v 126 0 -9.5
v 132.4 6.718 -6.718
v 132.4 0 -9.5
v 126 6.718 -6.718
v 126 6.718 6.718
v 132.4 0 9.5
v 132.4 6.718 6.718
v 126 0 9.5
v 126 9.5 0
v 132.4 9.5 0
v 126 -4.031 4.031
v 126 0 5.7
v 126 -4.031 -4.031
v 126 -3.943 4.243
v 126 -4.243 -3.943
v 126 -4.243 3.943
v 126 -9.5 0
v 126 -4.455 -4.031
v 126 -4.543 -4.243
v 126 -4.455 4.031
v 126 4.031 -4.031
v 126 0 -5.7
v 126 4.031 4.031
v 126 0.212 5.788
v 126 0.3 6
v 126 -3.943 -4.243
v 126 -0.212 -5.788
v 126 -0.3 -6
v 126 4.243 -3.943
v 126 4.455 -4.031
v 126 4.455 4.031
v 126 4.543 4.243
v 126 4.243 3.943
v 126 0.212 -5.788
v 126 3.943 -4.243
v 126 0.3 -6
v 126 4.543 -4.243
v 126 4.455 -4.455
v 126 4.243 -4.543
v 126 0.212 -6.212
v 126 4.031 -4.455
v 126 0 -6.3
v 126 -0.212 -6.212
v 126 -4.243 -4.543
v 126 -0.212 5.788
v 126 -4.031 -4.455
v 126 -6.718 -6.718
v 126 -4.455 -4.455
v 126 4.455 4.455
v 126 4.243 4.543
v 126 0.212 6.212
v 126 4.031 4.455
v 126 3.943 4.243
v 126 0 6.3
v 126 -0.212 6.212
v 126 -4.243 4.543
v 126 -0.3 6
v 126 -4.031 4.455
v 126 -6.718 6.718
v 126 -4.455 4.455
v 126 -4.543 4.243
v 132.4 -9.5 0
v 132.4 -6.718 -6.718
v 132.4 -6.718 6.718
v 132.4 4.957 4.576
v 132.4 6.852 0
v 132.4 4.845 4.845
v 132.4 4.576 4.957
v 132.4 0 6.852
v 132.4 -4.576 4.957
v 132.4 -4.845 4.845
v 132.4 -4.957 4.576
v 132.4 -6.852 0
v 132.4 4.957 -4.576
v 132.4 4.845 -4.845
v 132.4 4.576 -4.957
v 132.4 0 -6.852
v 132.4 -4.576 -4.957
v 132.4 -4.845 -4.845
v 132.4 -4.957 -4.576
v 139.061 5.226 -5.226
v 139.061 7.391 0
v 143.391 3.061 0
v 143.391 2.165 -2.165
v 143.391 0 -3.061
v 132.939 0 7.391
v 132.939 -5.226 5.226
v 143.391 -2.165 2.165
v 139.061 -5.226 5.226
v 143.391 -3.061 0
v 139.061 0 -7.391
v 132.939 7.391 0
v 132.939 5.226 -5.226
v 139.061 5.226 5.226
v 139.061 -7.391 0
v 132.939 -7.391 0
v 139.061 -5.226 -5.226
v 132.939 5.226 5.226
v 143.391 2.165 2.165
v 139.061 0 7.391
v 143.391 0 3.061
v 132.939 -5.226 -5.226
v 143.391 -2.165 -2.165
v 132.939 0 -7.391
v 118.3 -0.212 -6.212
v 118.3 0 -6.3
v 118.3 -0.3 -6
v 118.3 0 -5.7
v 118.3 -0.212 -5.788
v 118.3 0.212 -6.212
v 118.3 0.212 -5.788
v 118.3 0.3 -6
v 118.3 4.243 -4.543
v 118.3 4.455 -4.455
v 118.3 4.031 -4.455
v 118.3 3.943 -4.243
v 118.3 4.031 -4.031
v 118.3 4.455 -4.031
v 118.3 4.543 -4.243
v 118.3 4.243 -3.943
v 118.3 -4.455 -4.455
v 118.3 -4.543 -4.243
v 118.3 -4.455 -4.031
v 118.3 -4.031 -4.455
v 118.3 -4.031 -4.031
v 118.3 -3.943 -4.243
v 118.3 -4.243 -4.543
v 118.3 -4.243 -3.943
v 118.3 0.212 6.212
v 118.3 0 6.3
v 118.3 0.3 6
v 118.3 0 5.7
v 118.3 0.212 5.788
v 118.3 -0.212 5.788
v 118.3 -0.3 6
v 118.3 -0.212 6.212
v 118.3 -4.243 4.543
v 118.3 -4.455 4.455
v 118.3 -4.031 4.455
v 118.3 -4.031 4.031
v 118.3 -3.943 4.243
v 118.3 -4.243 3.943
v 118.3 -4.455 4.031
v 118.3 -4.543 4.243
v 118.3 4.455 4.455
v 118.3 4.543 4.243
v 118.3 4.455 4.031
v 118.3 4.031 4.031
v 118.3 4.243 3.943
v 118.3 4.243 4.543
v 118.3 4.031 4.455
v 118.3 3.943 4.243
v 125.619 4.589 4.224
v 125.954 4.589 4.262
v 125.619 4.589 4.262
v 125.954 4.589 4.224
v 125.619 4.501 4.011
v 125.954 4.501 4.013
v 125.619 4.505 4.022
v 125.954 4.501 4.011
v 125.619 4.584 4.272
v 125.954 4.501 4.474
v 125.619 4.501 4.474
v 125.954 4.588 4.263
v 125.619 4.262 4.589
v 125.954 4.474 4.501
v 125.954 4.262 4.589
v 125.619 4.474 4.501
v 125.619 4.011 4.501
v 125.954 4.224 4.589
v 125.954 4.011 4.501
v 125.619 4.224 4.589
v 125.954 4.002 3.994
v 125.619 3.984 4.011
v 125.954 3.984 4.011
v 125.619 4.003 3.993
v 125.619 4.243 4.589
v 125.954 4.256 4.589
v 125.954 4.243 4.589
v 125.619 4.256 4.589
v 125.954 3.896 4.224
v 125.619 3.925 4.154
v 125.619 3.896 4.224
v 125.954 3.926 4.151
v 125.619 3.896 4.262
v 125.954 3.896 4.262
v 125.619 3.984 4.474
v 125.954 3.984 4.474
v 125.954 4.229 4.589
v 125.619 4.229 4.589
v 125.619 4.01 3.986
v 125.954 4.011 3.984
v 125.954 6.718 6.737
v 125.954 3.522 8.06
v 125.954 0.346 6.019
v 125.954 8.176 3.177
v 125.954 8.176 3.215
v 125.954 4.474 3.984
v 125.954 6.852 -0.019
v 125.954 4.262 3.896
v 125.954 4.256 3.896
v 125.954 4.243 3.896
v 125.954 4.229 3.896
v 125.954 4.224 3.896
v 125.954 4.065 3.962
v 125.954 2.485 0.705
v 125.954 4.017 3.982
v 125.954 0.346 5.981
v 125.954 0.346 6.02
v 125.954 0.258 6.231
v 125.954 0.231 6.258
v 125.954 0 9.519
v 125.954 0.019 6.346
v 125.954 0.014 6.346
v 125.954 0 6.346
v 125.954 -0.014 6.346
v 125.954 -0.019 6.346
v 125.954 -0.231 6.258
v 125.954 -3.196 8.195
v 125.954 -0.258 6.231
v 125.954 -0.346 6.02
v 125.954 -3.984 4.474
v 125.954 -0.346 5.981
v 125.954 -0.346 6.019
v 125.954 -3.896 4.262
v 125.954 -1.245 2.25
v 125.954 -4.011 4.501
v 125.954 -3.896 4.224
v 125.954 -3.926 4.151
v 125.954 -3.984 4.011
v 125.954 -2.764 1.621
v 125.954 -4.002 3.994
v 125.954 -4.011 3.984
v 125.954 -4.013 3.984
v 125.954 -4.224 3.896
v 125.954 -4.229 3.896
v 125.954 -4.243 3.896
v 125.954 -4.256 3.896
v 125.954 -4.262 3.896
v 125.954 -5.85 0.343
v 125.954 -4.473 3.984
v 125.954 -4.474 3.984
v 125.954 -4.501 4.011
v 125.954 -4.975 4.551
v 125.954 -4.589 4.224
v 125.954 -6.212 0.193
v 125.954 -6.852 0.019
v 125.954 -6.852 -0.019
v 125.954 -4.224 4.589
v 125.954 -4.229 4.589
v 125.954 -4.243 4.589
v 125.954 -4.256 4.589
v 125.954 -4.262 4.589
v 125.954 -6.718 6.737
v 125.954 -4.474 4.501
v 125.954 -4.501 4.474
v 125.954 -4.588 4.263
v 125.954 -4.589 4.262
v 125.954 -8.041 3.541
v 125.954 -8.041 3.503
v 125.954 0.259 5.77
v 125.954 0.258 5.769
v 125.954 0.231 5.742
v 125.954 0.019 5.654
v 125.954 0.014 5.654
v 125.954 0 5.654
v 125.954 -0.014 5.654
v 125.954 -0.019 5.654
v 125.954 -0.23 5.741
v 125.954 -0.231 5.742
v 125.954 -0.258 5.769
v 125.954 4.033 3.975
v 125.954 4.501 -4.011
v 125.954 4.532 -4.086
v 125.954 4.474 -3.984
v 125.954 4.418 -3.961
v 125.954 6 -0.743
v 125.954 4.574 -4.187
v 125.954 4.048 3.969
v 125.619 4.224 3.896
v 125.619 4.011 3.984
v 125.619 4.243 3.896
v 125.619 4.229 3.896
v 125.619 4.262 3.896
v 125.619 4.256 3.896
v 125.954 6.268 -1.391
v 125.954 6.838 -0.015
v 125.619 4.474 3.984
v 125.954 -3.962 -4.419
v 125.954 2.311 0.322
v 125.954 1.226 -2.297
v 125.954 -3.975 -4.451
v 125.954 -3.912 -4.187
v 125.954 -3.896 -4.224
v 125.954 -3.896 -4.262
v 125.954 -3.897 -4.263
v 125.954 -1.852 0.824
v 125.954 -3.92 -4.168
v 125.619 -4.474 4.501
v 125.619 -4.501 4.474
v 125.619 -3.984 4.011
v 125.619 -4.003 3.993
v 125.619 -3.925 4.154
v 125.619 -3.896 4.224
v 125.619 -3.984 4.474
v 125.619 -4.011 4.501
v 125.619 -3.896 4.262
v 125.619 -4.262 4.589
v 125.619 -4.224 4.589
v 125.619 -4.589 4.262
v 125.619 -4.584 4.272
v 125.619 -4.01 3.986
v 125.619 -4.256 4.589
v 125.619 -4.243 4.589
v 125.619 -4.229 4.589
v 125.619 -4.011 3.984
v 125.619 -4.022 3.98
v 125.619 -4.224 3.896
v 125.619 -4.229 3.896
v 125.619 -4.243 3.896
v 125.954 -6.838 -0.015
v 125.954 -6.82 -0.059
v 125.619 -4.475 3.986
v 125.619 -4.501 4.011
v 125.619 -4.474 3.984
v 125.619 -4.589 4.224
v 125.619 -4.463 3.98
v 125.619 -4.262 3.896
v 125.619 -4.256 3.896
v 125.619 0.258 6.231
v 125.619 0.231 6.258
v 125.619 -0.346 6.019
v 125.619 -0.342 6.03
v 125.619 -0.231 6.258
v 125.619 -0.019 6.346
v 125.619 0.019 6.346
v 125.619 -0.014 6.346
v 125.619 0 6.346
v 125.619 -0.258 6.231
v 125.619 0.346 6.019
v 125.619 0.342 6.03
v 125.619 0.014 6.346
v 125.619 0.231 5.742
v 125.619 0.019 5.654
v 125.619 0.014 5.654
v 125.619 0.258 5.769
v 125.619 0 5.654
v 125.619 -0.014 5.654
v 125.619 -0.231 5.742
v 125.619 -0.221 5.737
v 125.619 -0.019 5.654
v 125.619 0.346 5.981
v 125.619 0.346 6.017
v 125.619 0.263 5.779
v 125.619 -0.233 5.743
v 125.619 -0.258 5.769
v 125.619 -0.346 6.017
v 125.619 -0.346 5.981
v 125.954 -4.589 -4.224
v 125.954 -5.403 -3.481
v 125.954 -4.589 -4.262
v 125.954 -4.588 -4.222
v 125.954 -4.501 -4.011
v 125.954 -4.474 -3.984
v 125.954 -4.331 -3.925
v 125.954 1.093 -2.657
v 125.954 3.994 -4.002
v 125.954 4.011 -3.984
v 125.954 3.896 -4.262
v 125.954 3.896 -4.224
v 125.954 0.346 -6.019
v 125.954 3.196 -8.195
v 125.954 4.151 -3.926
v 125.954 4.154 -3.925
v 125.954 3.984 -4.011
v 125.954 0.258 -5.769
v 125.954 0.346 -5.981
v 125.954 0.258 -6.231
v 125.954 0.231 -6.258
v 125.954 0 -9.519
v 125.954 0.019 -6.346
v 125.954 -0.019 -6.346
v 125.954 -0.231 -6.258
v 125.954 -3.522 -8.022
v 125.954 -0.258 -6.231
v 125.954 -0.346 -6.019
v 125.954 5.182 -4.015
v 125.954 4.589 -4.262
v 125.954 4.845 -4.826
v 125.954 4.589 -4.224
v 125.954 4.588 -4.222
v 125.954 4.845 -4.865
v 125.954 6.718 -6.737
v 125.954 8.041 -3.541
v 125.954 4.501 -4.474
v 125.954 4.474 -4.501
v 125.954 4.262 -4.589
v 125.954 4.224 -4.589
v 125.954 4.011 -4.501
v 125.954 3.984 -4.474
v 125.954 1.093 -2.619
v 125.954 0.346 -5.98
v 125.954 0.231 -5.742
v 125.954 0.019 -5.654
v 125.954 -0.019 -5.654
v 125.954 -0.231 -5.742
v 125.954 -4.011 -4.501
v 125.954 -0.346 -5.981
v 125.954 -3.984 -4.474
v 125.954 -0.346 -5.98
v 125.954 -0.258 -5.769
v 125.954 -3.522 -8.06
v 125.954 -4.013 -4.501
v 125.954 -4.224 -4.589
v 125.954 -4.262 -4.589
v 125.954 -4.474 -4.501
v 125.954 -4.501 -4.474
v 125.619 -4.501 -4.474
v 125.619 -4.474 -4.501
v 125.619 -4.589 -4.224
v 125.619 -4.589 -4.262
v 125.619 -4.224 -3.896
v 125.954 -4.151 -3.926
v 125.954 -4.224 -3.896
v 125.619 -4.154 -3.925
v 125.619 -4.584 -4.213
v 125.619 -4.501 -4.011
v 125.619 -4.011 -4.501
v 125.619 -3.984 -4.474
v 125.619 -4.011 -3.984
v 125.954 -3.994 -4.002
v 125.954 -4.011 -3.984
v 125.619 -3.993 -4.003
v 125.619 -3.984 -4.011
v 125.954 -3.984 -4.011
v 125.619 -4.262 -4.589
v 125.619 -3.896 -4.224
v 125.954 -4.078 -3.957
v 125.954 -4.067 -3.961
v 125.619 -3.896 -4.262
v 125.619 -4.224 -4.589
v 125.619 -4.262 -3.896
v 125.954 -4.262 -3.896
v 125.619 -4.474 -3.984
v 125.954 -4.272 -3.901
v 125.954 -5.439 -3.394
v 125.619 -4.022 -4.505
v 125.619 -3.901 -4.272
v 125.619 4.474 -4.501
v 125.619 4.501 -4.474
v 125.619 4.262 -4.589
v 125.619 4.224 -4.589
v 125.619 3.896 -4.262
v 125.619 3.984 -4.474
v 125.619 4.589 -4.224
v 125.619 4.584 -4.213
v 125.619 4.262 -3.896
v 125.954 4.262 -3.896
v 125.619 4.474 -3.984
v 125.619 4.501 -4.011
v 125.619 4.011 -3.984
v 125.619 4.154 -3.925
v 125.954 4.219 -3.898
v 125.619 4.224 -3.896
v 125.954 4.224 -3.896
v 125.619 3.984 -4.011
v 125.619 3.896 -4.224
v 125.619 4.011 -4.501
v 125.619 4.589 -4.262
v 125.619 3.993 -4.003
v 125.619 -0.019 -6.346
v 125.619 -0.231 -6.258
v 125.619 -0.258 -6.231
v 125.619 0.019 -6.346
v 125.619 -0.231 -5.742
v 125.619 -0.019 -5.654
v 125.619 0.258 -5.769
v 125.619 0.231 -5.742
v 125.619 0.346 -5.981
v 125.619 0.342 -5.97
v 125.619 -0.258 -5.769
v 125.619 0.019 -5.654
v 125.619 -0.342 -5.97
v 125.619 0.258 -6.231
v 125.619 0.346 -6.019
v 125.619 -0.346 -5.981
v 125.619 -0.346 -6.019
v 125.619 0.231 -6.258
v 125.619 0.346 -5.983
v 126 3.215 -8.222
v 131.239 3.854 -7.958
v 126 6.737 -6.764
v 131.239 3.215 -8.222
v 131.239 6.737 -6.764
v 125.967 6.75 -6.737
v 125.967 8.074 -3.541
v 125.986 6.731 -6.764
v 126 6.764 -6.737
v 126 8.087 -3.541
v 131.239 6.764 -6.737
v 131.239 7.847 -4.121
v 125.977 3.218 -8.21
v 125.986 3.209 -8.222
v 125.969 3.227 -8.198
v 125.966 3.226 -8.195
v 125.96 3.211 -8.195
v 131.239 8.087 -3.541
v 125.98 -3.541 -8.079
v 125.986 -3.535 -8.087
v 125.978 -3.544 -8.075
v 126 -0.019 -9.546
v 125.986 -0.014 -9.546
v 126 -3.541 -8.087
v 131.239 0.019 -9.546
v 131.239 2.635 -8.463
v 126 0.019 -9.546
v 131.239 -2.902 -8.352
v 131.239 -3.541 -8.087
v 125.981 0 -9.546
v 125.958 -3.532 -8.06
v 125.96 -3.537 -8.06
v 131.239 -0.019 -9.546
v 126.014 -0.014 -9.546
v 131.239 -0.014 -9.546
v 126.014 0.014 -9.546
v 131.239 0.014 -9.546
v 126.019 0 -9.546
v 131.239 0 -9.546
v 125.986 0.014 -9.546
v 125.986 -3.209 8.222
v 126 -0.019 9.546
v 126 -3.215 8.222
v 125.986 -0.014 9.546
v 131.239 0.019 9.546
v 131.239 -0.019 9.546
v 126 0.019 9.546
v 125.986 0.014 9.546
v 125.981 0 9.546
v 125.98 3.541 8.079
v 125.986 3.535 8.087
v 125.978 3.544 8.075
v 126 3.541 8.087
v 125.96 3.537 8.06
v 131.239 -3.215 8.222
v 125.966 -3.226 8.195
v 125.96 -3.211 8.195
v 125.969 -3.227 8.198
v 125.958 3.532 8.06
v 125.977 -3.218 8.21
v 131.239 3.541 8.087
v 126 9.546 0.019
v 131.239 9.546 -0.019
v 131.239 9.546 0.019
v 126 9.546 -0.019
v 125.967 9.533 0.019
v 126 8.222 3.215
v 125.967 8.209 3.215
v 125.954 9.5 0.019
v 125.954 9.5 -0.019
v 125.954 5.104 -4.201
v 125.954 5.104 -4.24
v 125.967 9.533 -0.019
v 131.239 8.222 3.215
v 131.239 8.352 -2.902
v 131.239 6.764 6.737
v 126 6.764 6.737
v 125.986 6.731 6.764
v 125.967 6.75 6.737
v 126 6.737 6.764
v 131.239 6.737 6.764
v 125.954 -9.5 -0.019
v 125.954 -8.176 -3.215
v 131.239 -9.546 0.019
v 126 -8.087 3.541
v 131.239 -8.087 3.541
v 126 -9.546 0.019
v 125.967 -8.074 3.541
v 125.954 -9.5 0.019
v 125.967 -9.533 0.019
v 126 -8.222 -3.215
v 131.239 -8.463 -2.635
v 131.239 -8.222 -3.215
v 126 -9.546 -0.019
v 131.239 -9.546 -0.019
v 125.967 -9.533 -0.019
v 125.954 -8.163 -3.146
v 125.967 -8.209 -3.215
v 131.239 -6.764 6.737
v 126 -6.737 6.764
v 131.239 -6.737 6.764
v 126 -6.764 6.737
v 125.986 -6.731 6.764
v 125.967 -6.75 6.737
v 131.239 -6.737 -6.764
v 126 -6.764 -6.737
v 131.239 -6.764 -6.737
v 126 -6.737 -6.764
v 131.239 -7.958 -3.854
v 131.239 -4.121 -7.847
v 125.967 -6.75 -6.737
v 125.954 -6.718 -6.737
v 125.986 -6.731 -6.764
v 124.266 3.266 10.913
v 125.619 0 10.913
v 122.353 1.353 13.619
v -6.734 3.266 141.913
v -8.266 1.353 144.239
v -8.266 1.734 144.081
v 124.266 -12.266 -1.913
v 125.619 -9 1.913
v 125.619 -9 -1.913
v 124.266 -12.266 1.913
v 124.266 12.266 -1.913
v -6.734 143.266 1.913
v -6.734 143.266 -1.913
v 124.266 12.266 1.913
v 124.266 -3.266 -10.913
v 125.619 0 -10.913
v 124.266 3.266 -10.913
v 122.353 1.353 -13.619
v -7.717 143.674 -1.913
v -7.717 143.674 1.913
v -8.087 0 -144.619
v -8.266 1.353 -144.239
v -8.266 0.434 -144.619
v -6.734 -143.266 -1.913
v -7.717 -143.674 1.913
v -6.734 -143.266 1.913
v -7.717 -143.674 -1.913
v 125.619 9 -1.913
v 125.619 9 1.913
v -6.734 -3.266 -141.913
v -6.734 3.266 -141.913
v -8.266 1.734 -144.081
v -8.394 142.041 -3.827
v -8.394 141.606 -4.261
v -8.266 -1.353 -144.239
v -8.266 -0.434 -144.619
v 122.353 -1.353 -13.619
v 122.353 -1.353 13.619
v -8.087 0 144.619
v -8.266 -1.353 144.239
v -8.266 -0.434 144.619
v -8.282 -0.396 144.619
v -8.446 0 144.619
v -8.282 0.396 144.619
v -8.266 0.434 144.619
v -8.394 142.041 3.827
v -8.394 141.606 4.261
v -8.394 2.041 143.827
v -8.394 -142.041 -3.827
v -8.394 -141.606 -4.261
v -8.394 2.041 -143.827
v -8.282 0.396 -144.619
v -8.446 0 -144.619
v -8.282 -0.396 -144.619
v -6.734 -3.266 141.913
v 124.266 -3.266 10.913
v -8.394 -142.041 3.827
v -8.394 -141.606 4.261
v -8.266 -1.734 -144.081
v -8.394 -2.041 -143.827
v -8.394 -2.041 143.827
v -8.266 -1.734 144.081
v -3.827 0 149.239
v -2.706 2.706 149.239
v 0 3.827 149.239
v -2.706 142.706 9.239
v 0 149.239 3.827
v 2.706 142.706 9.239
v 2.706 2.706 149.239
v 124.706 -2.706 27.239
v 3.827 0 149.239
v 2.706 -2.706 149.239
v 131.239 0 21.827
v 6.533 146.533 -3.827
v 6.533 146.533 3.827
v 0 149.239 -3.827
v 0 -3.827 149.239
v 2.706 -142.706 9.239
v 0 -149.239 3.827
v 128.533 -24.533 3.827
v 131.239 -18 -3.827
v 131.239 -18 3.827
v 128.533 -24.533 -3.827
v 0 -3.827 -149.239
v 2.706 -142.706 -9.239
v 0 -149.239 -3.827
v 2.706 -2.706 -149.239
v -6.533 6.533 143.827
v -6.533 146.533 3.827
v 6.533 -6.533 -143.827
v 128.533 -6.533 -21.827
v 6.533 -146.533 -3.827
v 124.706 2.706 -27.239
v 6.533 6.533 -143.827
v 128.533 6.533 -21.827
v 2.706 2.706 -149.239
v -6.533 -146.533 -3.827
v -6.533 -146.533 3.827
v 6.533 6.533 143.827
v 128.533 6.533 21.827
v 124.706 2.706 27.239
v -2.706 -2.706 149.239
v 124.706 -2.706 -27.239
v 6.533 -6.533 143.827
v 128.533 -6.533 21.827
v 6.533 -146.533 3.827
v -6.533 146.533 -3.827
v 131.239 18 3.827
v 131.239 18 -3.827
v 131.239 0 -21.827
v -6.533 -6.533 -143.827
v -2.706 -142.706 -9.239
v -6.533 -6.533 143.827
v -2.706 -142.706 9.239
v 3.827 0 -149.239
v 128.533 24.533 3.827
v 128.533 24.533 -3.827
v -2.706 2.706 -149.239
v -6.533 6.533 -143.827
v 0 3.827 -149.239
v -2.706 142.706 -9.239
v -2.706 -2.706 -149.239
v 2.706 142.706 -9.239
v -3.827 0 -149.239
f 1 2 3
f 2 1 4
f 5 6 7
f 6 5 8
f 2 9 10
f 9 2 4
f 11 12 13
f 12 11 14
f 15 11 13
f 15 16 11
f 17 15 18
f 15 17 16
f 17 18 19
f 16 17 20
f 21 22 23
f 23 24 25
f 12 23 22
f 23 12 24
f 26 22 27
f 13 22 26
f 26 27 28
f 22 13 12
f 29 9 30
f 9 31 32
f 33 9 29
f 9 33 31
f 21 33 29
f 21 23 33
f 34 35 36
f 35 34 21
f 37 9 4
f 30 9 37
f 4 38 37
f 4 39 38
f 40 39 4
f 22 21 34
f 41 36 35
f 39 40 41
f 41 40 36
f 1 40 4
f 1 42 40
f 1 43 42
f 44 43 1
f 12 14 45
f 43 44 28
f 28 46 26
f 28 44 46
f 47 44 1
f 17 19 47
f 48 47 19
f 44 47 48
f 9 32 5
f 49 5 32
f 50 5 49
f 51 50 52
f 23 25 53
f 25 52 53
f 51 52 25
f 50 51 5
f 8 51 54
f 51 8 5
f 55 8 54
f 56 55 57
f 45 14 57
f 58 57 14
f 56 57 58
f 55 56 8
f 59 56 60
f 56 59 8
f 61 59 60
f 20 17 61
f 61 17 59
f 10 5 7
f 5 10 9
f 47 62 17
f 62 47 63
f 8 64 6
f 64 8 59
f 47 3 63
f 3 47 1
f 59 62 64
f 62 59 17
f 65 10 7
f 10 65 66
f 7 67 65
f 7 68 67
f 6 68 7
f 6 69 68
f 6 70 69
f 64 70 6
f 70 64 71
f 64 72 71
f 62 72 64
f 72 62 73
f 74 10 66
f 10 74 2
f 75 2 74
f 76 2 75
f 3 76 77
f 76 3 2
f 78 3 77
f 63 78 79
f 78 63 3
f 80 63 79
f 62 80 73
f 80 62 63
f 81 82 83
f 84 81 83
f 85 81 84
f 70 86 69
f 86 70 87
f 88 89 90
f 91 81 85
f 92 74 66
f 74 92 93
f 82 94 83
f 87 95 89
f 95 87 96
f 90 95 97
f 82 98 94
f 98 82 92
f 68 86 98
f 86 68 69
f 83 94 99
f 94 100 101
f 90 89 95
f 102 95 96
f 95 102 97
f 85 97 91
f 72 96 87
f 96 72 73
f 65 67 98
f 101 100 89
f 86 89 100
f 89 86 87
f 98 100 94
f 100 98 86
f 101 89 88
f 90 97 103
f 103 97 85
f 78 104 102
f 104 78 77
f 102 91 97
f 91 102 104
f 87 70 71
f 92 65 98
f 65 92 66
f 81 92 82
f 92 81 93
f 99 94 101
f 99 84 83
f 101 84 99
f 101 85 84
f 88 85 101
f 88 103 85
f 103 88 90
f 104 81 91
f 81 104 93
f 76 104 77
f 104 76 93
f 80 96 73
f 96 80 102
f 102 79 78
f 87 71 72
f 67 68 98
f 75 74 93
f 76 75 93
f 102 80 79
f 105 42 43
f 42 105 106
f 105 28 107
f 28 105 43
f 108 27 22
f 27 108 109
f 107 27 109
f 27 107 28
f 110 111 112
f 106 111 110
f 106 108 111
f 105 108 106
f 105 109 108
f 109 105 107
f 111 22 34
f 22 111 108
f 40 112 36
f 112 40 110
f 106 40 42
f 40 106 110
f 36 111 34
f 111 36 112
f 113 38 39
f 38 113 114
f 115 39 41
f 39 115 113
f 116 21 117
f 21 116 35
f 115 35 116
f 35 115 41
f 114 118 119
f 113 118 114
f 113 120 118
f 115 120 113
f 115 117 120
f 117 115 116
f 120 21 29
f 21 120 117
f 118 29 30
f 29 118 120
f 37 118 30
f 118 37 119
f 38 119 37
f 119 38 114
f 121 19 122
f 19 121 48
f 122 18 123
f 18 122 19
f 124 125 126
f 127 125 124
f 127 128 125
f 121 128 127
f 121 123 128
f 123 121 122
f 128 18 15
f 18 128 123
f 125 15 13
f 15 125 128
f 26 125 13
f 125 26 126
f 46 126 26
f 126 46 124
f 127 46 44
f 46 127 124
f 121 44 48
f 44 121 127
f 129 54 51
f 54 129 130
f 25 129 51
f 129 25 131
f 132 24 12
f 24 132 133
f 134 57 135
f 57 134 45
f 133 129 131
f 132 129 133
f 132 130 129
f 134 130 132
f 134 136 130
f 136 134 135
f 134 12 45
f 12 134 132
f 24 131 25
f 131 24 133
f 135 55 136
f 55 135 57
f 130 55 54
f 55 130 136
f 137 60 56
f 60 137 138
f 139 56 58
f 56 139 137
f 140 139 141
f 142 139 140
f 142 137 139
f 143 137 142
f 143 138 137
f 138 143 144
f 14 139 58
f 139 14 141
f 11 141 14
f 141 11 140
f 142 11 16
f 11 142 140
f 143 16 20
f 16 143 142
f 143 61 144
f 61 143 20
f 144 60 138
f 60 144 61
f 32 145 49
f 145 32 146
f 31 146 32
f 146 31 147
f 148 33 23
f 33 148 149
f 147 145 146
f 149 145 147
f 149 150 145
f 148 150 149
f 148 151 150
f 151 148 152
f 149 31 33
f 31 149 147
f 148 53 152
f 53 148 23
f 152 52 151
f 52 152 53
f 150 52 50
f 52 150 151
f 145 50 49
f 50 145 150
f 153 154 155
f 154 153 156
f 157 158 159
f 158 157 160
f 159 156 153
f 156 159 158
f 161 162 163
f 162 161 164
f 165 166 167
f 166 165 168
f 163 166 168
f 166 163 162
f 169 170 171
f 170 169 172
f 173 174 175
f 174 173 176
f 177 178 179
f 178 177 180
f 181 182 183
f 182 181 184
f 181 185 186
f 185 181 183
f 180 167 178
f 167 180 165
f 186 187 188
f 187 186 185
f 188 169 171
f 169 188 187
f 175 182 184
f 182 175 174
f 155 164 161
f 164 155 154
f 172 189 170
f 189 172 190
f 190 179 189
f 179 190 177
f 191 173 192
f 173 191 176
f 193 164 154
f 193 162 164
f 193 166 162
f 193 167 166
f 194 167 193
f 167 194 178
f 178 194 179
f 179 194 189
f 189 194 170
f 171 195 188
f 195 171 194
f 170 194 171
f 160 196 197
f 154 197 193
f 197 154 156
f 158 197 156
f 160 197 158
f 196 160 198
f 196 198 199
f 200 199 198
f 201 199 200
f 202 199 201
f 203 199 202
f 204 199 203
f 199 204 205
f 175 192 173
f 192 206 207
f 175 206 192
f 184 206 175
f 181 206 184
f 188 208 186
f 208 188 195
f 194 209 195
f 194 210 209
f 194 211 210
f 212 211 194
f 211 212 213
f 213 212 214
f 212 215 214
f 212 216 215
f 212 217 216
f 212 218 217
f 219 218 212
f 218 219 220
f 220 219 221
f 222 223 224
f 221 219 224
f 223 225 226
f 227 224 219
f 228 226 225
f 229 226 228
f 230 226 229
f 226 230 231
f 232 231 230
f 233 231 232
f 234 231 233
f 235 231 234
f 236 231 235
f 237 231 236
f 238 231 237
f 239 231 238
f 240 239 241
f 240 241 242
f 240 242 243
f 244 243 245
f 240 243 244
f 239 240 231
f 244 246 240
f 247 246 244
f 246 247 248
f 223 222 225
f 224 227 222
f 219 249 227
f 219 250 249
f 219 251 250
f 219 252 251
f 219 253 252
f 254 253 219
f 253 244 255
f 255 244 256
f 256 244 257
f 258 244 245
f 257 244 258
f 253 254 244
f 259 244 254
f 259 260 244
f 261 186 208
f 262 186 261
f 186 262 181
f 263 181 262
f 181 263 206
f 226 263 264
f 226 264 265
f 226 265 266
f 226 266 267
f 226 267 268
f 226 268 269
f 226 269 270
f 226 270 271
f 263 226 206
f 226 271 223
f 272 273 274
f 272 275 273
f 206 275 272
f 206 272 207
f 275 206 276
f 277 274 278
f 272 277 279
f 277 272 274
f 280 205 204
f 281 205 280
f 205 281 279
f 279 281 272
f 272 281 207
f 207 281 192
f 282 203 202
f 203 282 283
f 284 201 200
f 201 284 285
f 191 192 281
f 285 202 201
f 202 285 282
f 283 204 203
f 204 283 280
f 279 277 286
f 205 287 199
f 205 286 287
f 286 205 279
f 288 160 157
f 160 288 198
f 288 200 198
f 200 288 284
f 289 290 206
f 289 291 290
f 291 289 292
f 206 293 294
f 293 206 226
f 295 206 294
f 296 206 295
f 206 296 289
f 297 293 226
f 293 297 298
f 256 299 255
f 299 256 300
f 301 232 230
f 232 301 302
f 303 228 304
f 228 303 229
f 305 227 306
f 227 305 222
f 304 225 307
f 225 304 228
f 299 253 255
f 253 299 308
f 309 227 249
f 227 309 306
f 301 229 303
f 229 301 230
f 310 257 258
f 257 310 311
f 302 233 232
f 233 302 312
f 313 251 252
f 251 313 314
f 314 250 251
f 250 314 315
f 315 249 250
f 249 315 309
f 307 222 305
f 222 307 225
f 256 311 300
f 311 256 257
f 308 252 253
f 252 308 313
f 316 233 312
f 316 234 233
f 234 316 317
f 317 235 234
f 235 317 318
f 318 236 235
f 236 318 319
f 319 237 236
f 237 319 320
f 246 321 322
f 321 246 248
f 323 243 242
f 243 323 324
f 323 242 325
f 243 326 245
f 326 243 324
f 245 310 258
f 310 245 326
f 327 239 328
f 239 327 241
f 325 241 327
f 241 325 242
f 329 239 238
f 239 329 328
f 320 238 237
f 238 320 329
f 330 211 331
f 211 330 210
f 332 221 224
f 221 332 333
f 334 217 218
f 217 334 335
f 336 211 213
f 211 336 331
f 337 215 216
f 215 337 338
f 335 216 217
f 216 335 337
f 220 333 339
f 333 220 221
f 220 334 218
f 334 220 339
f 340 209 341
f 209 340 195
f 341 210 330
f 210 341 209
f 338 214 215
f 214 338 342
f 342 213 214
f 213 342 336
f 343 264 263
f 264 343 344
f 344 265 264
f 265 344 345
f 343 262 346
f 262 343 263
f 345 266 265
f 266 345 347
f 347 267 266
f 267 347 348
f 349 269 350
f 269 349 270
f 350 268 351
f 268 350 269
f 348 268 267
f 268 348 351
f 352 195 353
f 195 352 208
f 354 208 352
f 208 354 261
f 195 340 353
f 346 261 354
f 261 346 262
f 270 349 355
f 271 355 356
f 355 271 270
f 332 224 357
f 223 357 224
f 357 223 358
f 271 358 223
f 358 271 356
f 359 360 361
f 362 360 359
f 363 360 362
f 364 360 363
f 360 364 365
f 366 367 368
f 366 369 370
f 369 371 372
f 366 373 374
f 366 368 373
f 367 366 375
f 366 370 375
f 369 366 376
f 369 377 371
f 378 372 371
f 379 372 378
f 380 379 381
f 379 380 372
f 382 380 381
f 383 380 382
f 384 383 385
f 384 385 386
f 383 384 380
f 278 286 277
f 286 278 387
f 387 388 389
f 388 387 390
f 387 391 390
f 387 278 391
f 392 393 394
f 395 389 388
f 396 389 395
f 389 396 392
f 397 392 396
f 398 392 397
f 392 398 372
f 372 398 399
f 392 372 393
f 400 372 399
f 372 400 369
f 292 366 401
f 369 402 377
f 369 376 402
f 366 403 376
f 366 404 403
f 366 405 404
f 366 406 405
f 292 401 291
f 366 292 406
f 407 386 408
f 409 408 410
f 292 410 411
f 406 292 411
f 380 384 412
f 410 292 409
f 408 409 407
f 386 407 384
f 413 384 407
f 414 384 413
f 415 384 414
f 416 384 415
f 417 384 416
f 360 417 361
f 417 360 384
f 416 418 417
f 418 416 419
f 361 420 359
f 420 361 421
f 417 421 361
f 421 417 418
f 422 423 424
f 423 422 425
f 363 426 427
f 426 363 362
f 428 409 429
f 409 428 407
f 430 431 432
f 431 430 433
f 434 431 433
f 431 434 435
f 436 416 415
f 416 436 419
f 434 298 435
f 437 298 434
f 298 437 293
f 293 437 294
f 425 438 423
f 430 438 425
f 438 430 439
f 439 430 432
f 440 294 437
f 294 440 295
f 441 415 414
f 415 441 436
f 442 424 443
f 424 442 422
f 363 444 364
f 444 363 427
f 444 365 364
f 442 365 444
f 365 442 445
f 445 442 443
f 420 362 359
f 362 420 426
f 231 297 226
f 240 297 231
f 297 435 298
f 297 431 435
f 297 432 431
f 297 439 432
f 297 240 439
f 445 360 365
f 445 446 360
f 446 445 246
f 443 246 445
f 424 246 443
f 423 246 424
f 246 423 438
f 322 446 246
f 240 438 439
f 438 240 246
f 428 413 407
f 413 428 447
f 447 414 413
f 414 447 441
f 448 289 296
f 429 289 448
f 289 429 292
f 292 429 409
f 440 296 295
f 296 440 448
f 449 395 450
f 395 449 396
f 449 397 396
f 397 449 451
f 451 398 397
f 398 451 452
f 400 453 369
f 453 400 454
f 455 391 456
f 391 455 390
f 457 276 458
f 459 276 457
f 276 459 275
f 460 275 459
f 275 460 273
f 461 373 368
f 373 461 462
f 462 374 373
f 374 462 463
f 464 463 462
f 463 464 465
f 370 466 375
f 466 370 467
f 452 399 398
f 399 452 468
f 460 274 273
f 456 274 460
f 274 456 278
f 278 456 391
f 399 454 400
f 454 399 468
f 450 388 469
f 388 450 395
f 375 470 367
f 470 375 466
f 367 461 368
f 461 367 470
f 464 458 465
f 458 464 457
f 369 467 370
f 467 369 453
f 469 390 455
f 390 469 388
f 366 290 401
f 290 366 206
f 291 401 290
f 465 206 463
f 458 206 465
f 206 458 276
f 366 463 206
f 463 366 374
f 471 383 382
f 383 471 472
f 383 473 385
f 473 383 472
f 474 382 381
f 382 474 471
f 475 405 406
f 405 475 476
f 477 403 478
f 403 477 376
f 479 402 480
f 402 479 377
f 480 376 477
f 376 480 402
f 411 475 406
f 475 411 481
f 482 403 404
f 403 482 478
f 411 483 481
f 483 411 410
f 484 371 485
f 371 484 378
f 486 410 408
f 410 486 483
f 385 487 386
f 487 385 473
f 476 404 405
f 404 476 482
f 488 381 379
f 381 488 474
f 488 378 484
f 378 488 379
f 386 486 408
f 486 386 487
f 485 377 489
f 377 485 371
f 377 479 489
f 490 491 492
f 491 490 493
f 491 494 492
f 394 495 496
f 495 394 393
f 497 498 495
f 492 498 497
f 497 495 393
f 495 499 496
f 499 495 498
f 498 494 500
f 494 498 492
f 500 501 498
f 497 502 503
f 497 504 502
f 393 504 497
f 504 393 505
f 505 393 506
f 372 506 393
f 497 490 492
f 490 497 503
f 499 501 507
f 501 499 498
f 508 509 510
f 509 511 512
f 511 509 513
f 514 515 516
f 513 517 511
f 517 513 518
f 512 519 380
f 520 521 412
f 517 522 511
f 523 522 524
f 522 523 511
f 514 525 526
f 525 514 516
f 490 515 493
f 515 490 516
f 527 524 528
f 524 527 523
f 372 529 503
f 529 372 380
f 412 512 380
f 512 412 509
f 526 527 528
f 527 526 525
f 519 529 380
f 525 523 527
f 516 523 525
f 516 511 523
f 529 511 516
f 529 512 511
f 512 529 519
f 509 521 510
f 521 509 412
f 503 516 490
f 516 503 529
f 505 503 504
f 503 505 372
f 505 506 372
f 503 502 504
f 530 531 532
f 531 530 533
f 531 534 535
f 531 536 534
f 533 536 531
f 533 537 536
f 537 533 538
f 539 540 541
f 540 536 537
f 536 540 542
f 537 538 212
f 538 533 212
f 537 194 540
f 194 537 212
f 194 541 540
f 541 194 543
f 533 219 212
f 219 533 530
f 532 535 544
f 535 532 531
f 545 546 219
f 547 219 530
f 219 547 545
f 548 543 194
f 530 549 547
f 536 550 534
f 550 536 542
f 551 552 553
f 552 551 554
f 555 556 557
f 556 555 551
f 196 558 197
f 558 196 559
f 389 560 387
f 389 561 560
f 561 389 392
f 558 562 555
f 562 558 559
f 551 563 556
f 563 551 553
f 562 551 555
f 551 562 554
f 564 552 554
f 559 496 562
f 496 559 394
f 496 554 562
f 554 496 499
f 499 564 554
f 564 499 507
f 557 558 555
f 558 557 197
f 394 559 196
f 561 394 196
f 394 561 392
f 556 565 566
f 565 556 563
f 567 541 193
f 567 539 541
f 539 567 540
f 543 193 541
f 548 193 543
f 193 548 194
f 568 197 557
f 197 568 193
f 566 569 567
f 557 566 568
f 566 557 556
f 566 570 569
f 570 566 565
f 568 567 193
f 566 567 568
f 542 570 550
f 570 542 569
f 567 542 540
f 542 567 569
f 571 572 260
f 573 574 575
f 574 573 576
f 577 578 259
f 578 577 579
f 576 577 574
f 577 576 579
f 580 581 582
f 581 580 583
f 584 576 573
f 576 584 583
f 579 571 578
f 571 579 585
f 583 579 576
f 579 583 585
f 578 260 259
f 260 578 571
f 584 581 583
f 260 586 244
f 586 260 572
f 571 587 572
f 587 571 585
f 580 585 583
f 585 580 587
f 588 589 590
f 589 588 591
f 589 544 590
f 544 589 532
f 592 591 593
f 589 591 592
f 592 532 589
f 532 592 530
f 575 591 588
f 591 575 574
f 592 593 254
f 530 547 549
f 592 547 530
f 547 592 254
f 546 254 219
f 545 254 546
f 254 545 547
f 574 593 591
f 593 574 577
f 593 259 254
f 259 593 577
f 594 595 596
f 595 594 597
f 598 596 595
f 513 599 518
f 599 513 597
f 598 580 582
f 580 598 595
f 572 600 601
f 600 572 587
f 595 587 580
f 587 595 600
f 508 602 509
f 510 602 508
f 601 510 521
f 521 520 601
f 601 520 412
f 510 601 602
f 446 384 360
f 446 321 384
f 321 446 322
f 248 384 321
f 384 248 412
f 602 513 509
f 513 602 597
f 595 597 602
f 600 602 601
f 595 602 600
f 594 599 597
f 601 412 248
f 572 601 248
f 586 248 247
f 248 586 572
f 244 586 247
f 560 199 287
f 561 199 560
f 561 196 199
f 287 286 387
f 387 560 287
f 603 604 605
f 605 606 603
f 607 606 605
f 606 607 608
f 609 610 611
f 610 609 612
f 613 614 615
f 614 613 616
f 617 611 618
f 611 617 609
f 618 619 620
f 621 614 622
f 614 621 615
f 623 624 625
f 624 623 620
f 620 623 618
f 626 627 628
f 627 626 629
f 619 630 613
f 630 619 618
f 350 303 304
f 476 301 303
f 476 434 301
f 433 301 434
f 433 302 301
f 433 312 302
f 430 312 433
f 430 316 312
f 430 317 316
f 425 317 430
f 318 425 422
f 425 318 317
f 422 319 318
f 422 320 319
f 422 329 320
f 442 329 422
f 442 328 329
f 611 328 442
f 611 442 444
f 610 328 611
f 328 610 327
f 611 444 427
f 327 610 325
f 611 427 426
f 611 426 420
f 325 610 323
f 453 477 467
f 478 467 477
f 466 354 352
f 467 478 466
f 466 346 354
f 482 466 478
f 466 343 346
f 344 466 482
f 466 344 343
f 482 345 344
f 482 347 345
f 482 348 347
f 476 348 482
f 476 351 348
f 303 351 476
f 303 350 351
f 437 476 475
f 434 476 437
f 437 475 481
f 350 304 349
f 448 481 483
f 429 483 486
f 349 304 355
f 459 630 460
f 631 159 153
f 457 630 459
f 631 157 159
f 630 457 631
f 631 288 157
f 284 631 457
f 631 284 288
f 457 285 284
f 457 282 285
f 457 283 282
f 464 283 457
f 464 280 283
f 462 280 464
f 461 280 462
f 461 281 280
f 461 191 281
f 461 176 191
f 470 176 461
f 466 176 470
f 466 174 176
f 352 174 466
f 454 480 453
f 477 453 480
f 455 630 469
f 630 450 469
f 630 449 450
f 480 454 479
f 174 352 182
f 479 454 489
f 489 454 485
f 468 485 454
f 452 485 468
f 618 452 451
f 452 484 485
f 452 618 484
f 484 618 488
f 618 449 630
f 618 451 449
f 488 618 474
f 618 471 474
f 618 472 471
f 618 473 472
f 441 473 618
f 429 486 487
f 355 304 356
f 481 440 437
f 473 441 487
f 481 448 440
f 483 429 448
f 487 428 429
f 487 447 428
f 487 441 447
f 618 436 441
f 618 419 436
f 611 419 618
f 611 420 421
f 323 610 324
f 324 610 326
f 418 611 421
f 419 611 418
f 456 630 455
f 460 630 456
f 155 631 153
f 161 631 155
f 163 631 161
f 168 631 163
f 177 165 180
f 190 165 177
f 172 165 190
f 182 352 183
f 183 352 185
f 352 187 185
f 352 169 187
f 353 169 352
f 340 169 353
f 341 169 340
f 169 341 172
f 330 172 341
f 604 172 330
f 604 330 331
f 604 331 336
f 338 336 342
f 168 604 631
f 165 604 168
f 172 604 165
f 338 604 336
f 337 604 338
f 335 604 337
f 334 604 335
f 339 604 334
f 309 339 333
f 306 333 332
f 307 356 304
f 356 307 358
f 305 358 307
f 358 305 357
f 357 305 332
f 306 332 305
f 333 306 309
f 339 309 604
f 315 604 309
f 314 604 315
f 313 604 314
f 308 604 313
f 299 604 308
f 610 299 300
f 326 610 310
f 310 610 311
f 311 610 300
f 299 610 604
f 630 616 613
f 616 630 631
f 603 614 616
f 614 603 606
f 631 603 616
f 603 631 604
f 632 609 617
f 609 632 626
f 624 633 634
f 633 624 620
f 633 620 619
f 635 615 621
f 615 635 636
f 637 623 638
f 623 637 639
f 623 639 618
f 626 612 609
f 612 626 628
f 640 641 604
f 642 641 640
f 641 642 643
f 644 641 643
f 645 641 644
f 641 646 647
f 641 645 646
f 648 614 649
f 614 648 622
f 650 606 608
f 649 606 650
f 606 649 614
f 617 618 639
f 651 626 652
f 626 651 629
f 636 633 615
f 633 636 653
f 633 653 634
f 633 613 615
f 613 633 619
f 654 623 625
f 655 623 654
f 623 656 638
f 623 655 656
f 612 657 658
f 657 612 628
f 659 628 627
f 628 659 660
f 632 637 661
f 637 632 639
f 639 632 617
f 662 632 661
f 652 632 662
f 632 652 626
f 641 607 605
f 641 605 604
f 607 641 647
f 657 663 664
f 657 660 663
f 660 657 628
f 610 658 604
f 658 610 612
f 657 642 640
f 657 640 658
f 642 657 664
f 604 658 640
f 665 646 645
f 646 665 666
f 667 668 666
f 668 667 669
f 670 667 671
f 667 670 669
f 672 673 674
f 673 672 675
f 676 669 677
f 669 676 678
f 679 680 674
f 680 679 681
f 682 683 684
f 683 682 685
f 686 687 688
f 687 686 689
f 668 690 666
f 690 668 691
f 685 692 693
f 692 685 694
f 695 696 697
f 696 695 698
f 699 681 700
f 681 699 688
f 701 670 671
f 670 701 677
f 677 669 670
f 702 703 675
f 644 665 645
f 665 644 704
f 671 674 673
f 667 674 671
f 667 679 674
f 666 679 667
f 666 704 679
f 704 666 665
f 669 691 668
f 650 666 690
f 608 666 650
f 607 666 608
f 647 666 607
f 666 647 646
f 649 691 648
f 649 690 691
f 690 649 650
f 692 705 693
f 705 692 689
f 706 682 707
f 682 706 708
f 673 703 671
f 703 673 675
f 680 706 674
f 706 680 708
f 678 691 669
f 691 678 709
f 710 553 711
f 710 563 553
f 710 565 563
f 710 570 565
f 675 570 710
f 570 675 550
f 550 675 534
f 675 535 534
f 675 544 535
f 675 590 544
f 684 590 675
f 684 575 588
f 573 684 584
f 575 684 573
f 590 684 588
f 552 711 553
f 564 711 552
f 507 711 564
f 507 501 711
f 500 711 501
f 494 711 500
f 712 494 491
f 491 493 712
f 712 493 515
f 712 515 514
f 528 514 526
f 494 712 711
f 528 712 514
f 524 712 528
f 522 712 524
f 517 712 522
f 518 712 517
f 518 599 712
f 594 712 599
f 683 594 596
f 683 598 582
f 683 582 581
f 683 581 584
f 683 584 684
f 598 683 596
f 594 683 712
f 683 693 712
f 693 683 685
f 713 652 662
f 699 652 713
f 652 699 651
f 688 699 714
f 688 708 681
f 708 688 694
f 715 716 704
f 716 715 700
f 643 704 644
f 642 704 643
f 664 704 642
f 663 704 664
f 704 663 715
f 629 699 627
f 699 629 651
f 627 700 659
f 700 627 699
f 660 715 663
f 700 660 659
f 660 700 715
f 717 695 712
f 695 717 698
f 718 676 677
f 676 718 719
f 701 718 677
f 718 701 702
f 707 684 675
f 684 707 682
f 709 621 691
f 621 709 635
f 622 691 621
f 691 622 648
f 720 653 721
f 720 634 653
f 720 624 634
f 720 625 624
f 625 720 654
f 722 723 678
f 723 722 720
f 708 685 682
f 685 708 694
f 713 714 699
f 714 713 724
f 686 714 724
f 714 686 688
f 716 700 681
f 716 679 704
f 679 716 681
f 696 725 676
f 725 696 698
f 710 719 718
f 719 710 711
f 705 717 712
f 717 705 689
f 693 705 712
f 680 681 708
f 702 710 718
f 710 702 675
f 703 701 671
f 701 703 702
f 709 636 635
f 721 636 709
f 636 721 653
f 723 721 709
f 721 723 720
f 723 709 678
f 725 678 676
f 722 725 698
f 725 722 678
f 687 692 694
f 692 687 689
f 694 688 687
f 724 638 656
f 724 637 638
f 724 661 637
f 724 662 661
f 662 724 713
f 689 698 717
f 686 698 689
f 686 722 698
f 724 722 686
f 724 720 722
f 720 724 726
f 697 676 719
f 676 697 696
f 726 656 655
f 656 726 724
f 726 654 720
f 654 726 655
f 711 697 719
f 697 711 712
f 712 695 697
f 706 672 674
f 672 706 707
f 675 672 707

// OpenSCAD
// file: ../3d-iot-component-models/pir-motion-sensor.scad
// A PIR motion sensor ordered from https://www.sparkfun.com/products/13285

$fn = 8;

length = 33.6;
width = 28.6;
height = 4;

base_length = 22.9;
base_width = 22.7;
base_height = 5.6;

dome_radius = 22/2;

module board() {
    cube([length, width, height]);
}

module dome() {
    translate([5.55, 2.84, height])
        cube([base_length, base_width, base_height]);
    difference() {
        translate([length/2, width/2, height + 5.6]) sphere(r = dome_radius);
        translate([0, 0, -10]) cube([length, width, 10]);
    }
}

module wire() {
    translate([-length/4, (width - 6.2)/2, height])
        cube([length/2, 6.2, 1]);
}

module hole(x = 0, y = 0) {
    translate([x, y, -10 + height]) cylinder(h = 10 + height, r = 2.6/2);
}

module pir_motion_sensor() {
    translate([-length/2, -width/2, -base_height - height]) union() {
        color("green") difference() {
            board();
            union() {
                hole(x = 2.9, y = 2.5);
                hole(x = length - 2.9, y = width - 2.5);
                hole(x = 2.9, y = width - 2.5);
                hole(x = length - 2.9, y = 2.5);
            }
        }
        color("grey") dome();
        color("black") wire();
    }    
}

pir_motion_sensor();
// file: ../3d-iot-component-models/methane-sensor.scad
// A CNG-Methane sensor MQ-4 ordered from https://www.sparkfun.com/products/9404

$fn = 8;

pin_length = 7.7;

module center() {
    cylinder(h = 6.4, r = 19/2);
}

module top() {
    translate([0, 0, 18 - 16/2])
        sphere(r = 16/2);
}

module pin(theta = 0) {
    color("black") rotate([180, 0, theta]) {
        translate([6, 0, 0])
            cylinder(r = .3, h = pin_length);
    }
}

module methane_sensor() {
    color("grey") center();
    color("violet") top();
    pin(theta = 0);
    pin(theta = 45);
    pin(theta = -45);
    pin(theta = 180);
    pin(theta = 180 + 45);
    pin(theta = 180 - 45);
}

methane_sensor();
// file: ../3d-iot-component-models/arduino-yun-mini.scad
// Arduino Yun Mini 3D model for planning

$fn = 8;

length = 71.12;
width = 22.86;
height = 1.3;
header_length = 64;

module board() {
    cube([length, width, height]);
}

module usb_power() {
    translate([-2, (width - 5.8) / 2, height]) cube([7.5, 5.8, 3]);
}

module header(y = 0, z = 0) {
    translate([2, y, z]) cube([header_length, 2.6, 9.2]);
}

module leds() {
    translate([header_length, 0, height]) cube([2, width/2, 1]);
}

module button(y = 0) {
    translate([length - 2.75, y, height]) cylinder(r = 3/2, h = 1);    
}

module bottom_button() {
    translate([length - 2, 7.5, -1]) cylinder(r = 3/2, h = 1);    
}

module hole(x = 0, y = 0) {
    translate([x, y, -9]) cylinder(h = 10 + height, r = 2.5/2);
}


module arduino_yun_mini() {
    difference() {
        color("green") board();
        union() {
            hole(x = 2.5, y = width - 4);
            hole(x = length - 2, y = 2);
        }
    }

    color("magenta") usb_power();
    color("red") leds();
    color("blue") button(y = 6.5);
    color("blue") button(y = 10.3);
    color("violet") bottom_button(y = 10.3);
    color("black") header(z = height, y = 0);
    color("black") header(z = 0, y = width - 2.6);
    color("silver") header(z = -9.2, y = 0);
    color("silver") header(z = -9.2, y = width - 2.6);
}

arduino_yun_mini();
// main file
// Bathroom Sensor 3D Model with methane sensor, 2 motion sensors and Arduino Yun

$fn = 8;

cube_side = 140;
cube_tip_clip = 12;
skin = 10;
inner_skin = 5;
thin_skin = 0.05;

difference() {
    color("red") box();
    union() {
        methane_moved_skin();
    }
}

//yun_moved();
methane_moved();

module yun() {
    include <../3d-iot-component-models/arduino-yun-mini.scad>
}

module methane() {
    include <../3d-iot-component-models/methane-sensor.scad>
}

module motion() {
    include <../3d-iot-component-models/pir-motion-sensor.scad>
}

module yun_moved() {
    translate([0, -cube_side/3 + skin, 0]) yun();
}

module yun_moved_skin() {
    minkowski() {
        yun_moved();
        sphere(r=thin_skin);
    }
}

module methane_moved() {
    translate([cube_side + skin - cube_tip_clip*2, 0, 0])
        rotate([0, 90, 0]) {
            methane();
        }
}

module methane_moved_skin() {
    minkowski() {
        methane_moved();
        sphere(r=thin_skin);
    }
}

module poly(clip = 0) {
    difference() {
        polyhedron(
            points=[[0,cube_side,0],
                [0,0,-cube_side],
                [0,-cube_side,0],
                [0,0,cube_side],
                [cube_side,0]],
            faces=[[0,1,4],[1,2,4],[2,3,4],[3,0,4],[1,0,3],[2,1,3]],
            convexivity=8);        
        translate([cube_side - clip/2, 0, 0])
            cube([clip*2, clip*3, clip*3], center = true);
    }
}

module box() {
    difference() {
        minkowski() {
            poly(cube_tip_clip);
            sphere(r=skin);
        }
        union() {
            methane_moved_skin();
            minkowski() {
                translate([-skin, 0, 0])
                    poly(cube_tip_clip/2);
                sphere(r=inner_skin);
            }
        }
    }
}
